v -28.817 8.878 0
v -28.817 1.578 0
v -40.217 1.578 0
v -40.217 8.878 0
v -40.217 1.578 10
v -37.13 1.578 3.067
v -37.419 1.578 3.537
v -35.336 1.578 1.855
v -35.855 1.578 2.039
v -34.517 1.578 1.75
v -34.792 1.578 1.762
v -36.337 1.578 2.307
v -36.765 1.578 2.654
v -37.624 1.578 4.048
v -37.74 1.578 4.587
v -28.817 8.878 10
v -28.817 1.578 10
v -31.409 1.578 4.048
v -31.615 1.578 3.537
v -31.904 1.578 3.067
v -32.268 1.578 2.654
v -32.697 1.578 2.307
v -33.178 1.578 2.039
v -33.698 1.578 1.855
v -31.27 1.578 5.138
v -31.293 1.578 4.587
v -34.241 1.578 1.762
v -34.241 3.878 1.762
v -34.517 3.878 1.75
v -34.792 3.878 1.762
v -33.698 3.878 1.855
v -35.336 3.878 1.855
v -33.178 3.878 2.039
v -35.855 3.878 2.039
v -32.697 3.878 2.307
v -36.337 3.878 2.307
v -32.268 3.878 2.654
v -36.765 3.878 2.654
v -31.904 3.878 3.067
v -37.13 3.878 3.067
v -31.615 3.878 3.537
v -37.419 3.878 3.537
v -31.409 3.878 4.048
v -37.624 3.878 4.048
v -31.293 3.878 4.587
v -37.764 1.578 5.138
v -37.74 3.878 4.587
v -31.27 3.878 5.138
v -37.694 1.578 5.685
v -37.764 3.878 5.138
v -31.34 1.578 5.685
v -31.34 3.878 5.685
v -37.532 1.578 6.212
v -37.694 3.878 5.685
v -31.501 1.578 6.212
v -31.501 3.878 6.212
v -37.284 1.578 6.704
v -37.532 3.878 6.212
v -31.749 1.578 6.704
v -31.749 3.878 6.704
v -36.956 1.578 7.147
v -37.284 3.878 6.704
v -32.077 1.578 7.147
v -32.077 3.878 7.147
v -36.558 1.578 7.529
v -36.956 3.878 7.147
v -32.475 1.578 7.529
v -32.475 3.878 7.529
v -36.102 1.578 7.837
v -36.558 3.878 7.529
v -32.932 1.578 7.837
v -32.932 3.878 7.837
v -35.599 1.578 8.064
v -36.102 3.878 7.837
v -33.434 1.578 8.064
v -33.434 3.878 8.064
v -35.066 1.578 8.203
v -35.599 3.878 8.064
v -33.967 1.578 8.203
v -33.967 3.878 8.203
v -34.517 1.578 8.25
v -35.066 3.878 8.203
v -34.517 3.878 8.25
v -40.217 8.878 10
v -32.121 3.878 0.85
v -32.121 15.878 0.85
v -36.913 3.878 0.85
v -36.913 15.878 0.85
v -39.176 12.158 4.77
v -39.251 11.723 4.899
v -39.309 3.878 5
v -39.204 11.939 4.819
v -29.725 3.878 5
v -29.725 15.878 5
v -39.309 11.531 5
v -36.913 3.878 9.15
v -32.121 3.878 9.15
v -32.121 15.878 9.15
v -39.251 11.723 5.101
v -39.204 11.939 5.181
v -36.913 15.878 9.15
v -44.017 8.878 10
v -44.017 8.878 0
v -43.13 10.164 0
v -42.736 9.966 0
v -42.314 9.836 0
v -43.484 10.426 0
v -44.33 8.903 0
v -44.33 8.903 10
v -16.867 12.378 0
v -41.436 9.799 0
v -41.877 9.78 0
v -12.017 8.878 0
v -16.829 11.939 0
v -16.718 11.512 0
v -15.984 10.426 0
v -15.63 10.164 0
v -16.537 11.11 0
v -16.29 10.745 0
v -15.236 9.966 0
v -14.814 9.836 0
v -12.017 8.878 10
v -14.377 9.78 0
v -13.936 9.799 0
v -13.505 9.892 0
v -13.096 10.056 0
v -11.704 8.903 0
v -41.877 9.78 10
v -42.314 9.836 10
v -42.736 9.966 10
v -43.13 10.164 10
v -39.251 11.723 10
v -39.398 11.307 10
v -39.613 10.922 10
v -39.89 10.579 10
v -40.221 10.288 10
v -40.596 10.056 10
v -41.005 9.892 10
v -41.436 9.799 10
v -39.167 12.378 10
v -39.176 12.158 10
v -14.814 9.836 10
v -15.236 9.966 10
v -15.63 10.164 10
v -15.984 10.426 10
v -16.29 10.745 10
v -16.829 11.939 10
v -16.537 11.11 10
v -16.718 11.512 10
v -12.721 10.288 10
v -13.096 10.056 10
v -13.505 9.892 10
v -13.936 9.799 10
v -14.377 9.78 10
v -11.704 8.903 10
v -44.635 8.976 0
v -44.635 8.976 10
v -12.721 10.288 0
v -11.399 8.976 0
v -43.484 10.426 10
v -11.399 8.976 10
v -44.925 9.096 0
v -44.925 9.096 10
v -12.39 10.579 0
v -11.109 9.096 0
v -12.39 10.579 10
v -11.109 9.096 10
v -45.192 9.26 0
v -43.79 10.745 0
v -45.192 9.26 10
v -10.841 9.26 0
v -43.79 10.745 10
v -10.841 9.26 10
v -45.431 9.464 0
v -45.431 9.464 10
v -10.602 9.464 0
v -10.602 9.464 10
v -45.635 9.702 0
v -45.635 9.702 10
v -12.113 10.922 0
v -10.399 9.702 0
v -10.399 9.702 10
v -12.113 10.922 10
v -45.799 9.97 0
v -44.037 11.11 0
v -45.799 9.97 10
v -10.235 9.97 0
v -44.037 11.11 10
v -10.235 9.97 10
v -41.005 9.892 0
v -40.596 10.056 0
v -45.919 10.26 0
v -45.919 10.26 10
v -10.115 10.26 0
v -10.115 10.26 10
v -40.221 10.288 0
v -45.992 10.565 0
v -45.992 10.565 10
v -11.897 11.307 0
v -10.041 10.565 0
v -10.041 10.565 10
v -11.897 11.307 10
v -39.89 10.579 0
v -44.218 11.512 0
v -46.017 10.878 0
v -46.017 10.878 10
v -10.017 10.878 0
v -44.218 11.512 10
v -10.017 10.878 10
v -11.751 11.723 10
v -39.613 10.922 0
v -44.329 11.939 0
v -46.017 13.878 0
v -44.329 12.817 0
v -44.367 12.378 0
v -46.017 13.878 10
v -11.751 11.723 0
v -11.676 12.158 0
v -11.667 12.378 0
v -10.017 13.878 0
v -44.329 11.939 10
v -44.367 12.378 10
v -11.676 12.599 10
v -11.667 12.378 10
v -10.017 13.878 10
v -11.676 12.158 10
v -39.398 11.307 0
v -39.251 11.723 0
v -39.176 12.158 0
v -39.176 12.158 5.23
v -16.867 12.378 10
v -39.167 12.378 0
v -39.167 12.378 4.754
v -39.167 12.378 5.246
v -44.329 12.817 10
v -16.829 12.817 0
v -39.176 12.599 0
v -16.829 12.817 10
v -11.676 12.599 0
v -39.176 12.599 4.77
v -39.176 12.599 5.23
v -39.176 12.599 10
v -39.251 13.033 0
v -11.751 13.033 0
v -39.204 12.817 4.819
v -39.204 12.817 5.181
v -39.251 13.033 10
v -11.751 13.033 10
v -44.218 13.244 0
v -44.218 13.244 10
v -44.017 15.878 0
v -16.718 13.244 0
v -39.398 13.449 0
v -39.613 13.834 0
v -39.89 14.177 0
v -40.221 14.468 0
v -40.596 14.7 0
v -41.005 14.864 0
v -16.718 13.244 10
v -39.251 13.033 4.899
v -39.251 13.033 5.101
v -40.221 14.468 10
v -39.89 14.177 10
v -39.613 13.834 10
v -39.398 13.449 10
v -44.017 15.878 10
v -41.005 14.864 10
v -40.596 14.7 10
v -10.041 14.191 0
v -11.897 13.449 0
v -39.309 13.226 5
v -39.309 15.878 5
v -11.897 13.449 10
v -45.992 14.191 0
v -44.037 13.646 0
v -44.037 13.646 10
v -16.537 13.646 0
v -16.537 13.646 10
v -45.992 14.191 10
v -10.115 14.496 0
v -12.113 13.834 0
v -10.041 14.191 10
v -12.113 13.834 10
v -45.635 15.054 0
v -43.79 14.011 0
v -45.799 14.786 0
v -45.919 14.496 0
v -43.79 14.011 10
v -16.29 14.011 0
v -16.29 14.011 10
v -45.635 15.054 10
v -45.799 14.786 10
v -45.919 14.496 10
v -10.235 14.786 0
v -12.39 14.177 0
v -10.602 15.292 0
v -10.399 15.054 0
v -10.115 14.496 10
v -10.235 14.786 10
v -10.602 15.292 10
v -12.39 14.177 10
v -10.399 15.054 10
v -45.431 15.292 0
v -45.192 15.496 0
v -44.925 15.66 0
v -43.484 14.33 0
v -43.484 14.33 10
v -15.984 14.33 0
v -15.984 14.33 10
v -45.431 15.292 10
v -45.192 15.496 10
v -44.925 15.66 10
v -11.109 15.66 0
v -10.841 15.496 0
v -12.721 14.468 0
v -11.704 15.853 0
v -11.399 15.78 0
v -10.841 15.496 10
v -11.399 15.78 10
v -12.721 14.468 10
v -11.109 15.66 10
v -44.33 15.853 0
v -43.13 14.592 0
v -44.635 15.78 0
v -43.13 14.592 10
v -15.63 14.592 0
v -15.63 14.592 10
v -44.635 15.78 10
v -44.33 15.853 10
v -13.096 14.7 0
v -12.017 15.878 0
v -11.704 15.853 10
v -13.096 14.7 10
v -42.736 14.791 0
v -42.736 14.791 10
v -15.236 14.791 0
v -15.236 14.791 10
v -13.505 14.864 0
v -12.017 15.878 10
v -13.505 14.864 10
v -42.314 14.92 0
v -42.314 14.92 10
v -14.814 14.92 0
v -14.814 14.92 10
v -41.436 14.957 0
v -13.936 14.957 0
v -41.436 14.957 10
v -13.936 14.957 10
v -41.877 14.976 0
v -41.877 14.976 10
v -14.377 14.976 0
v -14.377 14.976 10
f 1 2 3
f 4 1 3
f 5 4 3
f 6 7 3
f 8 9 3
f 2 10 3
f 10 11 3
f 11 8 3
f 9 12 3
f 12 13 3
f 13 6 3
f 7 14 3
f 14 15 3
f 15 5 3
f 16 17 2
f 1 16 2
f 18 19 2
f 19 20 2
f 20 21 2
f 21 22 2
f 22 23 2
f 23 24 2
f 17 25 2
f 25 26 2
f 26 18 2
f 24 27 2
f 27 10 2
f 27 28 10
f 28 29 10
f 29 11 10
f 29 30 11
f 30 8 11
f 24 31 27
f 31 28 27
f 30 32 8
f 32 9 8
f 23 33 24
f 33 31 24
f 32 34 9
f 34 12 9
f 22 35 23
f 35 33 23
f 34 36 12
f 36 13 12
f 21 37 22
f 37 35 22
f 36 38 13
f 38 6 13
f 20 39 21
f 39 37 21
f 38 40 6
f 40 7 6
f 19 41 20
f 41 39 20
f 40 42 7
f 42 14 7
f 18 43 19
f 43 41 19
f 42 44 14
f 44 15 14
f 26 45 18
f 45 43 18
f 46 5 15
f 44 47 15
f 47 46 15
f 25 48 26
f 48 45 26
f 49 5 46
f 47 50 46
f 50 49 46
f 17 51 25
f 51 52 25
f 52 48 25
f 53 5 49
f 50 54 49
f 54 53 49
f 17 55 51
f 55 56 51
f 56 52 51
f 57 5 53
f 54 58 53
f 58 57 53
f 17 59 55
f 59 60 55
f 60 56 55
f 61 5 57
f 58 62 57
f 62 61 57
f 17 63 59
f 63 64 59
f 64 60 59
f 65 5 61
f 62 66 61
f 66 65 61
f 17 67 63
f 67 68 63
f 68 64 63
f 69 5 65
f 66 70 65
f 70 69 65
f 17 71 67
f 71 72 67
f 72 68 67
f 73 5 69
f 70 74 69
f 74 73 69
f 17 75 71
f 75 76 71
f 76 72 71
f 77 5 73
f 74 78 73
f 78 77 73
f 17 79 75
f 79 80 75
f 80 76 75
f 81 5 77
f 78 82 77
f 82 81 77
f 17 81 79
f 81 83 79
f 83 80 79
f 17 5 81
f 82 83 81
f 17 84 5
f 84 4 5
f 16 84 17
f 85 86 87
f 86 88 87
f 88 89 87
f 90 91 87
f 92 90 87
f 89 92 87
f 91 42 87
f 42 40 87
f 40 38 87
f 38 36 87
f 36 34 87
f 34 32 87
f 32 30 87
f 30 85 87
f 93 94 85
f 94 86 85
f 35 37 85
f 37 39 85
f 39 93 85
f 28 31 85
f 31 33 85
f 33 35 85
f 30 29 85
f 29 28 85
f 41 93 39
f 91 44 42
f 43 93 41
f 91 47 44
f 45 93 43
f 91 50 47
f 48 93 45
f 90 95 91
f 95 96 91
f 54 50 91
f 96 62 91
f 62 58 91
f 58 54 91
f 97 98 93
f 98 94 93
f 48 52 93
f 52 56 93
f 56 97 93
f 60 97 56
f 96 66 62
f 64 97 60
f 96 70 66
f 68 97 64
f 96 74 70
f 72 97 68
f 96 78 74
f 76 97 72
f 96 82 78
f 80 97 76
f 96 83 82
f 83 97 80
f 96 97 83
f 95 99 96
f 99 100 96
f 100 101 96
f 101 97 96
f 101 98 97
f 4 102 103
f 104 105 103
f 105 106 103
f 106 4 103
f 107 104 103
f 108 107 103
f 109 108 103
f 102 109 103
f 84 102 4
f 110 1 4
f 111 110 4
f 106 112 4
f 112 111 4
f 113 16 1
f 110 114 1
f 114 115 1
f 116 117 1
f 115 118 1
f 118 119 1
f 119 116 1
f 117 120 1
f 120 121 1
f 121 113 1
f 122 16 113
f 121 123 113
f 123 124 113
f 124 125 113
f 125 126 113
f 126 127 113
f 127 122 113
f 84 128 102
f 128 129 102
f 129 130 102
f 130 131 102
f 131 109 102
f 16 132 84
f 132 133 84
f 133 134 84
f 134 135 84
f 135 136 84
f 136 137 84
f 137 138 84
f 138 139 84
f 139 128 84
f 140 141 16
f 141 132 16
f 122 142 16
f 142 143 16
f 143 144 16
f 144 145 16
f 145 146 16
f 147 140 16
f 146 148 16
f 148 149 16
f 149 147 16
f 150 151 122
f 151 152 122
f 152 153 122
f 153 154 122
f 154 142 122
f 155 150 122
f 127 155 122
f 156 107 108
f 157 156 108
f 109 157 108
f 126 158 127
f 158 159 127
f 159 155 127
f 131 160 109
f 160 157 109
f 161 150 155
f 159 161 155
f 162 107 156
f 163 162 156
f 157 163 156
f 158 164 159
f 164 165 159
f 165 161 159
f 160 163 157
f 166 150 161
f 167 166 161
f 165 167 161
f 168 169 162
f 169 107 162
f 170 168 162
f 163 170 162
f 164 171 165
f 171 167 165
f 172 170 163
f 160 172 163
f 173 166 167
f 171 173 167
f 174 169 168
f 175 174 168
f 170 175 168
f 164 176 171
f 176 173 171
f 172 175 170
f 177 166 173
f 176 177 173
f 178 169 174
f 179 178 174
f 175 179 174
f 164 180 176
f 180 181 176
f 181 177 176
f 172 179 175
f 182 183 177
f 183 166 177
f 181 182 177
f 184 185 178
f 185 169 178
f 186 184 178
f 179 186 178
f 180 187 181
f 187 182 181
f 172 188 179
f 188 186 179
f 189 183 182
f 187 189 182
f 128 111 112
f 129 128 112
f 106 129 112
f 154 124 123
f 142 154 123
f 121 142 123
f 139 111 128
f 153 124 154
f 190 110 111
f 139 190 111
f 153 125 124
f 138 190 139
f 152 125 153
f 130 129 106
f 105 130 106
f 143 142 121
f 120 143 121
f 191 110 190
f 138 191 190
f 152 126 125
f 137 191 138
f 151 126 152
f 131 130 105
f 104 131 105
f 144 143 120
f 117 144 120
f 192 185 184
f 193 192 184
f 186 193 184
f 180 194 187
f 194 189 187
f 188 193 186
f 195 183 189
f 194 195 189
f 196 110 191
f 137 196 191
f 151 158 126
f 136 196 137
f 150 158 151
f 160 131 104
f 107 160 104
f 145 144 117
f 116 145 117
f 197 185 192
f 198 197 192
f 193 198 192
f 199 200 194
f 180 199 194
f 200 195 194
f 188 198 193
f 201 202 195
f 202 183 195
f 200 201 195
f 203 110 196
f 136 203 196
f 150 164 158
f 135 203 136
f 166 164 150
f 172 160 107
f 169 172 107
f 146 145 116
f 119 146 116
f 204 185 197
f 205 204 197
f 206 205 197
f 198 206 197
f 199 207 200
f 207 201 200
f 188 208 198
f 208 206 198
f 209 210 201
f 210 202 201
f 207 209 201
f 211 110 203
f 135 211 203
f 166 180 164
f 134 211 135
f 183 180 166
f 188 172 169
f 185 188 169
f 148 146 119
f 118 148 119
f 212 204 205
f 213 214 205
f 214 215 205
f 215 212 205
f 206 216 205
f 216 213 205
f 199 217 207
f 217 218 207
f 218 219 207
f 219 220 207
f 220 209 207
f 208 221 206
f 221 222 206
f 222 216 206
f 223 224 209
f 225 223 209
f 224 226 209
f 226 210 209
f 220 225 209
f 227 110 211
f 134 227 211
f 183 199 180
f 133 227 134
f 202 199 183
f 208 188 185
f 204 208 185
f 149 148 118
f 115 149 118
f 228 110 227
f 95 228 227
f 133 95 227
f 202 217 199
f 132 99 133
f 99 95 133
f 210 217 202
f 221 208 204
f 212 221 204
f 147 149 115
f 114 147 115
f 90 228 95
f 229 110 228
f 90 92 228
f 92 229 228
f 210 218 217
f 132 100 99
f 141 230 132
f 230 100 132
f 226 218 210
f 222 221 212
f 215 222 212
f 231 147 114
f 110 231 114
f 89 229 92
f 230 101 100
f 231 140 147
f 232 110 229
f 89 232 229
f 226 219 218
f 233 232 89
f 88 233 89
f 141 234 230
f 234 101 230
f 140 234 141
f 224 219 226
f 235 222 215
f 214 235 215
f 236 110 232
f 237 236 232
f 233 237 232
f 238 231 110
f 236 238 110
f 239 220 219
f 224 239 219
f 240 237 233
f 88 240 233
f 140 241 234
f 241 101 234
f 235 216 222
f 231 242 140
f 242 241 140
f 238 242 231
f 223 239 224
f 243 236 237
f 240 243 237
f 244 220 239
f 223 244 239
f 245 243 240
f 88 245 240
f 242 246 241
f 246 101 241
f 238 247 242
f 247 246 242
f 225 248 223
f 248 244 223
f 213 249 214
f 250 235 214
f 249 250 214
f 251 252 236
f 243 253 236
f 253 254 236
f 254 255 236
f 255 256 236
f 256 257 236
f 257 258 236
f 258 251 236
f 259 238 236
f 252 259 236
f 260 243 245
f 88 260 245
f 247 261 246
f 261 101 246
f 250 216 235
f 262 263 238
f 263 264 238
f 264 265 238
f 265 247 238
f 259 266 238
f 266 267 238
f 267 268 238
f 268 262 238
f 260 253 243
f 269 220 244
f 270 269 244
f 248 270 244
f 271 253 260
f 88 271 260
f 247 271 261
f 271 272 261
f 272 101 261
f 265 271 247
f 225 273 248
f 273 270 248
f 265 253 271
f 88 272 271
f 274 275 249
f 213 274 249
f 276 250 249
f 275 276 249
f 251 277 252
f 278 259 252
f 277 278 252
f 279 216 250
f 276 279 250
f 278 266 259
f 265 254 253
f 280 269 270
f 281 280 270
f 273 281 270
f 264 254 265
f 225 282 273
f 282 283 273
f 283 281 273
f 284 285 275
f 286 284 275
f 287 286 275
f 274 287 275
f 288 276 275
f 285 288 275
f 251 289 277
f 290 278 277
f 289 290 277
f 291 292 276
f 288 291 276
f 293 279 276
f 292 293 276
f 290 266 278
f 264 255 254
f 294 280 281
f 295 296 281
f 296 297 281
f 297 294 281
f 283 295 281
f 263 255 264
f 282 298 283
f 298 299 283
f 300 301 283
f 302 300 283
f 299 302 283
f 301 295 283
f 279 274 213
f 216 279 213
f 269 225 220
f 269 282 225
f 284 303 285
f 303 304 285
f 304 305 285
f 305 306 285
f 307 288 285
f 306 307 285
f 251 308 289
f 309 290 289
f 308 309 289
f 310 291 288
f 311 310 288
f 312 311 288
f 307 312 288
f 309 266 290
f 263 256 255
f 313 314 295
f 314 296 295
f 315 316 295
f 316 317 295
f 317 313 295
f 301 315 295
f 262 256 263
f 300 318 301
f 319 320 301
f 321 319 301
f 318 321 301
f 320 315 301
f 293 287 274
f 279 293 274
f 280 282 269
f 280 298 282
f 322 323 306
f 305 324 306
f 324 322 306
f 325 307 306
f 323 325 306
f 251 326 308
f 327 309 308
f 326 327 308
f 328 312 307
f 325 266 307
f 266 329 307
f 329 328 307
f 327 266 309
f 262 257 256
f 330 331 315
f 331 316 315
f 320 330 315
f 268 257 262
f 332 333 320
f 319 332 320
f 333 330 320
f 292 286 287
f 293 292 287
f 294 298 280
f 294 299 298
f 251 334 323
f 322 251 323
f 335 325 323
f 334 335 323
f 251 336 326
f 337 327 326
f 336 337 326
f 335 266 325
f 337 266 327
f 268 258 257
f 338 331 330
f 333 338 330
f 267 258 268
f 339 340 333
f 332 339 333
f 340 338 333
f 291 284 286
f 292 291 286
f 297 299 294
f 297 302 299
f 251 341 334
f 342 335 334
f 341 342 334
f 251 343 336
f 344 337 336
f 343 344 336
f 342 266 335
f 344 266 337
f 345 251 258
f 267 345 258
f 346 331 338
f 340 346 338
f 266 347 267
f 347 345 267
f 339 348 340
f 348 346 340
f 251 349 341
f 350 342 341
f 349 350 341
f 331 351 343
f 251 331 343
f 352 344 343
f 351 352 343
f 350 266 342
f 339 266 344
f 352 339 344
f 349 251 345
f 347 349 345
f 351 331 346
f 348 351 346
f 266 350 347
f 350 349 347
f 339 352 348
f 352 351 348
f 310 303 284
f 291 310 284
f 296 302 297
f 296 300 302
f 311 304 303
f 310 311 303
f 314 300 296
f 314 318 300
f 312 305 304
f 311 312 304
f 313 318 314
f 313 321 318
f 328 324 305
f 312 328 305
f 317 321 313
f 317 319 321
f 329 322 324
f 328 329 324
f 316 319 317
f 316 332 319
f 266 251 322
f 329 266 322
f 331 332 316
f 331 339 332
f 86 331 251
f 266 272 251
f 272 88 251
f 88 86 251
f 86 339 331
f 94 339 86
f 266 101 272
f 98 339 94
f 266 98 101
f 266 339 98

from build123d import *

# Parameters (mm, degrees)
CROQUIS1_W              = 36
CROQUIS1_H              = 7
CROQUIS1_R              = 2.6
SALIENTE_EXTRUIR1_DEPTH = 10
CORTAR_EXTRUIR1_DEPTH   = 7
CROQUIS4_W              = 11.4
CROQUIS4_H              = 10
SALIENTE_EXTRUIR2_DEPTH = 5
REDONDEO1_R             = 2
CROQUIS5_W              = 11.4
CROQUIS5_H              = 10
CROQUIS5_R              = 3.25
SALIENTE_EXTRUIR3_DEPTH = 2.3


with BuildPart() as part:
    # Croquis1 → Saliente-Extruir1 (new body)
    with BuildSketch(Plane.XY):
        with Locations((-28.016694491, 12.37804878)):
            Rectangle(CROQUIS1_W, CROQUIS1_H)
        with Locations((-41.766694491, 12.37804878)):
            Circle(CROQUIS1_R, mode=Mode.SUBTRACT)
        with Locations((-14.266694491, 12.37804878)):
            Circle(CROQUIS1_R, mode=Mode.SUBTRACT)
    extrude(amount=SALIENTE_EXTRUIR1_DEPTH)

    # Croquis2 → Cortar-Extruir1 (cut)
    with BuildSketch(Plane.XZ.offset(-8.87804878)):
        Polygon((-29.724687257, 5), (-32.120690874, 9.15), (-36.912698108, 9.15), (-39.308701725, 5), (-36.912698108, 0.85), (-32.120690874, 0.85), align=None)
    extrude(amount=-CORTAR_EXTRUIR1_DEPTH, mode=Mode.SUBTRACT)

    # Croquis4 → Saliente-Extruir2 (add)
    with BuildSketch(Plane.XZ.offset(-8.87804878)):
        with Locations((-34.516694491, 5)):
            Rectangle(CROQUIS4_W, CROQUIS4_H)
        Polygon((-29.724687257, 5), (-32.120690874, 9.15), (-36.912698108, 9.15), (-39.308701725, 5), (-36.912698108, 0.85), (-32.120690874, 0.85), align=None, mode=Mode.SUBTRACT)
    extrude(amount=SALIENTE_EXTRUIR2_DEPTH)

    # Redondeo1
    redondeo1_edges = [part.edges().sort_by_distance(p)[0] for p in [
        (-10.016694491, 15.87804878, 5),
        (-10.016694491, 8.87804878, 5),
        (-46.016694491, 8.87804878, 5),
        (-46.016694491, 15.87804878, 5),
    ]]
    fillet(redondeo1_edges, radius=REDONDEO1_R)

    # Croquis5 → Saliente-Extruir3 (add)
    with BuildSketch(Plane.XZ.offset(-3.87804878)):
        with Locations((-34.516694491, 5)):
            Rectangle(CROQUIS5_W, CROQUIS5_H)
        with Locations(Location((-34.516694491, 5, 0), (0, 0, 270))):
            Circle(CROQUIS5_R, mode=Mode.SUBTRACT)
    extrude(amount=SALIENTE_EXTRUIR3_DEPTH)


solid = part.part
